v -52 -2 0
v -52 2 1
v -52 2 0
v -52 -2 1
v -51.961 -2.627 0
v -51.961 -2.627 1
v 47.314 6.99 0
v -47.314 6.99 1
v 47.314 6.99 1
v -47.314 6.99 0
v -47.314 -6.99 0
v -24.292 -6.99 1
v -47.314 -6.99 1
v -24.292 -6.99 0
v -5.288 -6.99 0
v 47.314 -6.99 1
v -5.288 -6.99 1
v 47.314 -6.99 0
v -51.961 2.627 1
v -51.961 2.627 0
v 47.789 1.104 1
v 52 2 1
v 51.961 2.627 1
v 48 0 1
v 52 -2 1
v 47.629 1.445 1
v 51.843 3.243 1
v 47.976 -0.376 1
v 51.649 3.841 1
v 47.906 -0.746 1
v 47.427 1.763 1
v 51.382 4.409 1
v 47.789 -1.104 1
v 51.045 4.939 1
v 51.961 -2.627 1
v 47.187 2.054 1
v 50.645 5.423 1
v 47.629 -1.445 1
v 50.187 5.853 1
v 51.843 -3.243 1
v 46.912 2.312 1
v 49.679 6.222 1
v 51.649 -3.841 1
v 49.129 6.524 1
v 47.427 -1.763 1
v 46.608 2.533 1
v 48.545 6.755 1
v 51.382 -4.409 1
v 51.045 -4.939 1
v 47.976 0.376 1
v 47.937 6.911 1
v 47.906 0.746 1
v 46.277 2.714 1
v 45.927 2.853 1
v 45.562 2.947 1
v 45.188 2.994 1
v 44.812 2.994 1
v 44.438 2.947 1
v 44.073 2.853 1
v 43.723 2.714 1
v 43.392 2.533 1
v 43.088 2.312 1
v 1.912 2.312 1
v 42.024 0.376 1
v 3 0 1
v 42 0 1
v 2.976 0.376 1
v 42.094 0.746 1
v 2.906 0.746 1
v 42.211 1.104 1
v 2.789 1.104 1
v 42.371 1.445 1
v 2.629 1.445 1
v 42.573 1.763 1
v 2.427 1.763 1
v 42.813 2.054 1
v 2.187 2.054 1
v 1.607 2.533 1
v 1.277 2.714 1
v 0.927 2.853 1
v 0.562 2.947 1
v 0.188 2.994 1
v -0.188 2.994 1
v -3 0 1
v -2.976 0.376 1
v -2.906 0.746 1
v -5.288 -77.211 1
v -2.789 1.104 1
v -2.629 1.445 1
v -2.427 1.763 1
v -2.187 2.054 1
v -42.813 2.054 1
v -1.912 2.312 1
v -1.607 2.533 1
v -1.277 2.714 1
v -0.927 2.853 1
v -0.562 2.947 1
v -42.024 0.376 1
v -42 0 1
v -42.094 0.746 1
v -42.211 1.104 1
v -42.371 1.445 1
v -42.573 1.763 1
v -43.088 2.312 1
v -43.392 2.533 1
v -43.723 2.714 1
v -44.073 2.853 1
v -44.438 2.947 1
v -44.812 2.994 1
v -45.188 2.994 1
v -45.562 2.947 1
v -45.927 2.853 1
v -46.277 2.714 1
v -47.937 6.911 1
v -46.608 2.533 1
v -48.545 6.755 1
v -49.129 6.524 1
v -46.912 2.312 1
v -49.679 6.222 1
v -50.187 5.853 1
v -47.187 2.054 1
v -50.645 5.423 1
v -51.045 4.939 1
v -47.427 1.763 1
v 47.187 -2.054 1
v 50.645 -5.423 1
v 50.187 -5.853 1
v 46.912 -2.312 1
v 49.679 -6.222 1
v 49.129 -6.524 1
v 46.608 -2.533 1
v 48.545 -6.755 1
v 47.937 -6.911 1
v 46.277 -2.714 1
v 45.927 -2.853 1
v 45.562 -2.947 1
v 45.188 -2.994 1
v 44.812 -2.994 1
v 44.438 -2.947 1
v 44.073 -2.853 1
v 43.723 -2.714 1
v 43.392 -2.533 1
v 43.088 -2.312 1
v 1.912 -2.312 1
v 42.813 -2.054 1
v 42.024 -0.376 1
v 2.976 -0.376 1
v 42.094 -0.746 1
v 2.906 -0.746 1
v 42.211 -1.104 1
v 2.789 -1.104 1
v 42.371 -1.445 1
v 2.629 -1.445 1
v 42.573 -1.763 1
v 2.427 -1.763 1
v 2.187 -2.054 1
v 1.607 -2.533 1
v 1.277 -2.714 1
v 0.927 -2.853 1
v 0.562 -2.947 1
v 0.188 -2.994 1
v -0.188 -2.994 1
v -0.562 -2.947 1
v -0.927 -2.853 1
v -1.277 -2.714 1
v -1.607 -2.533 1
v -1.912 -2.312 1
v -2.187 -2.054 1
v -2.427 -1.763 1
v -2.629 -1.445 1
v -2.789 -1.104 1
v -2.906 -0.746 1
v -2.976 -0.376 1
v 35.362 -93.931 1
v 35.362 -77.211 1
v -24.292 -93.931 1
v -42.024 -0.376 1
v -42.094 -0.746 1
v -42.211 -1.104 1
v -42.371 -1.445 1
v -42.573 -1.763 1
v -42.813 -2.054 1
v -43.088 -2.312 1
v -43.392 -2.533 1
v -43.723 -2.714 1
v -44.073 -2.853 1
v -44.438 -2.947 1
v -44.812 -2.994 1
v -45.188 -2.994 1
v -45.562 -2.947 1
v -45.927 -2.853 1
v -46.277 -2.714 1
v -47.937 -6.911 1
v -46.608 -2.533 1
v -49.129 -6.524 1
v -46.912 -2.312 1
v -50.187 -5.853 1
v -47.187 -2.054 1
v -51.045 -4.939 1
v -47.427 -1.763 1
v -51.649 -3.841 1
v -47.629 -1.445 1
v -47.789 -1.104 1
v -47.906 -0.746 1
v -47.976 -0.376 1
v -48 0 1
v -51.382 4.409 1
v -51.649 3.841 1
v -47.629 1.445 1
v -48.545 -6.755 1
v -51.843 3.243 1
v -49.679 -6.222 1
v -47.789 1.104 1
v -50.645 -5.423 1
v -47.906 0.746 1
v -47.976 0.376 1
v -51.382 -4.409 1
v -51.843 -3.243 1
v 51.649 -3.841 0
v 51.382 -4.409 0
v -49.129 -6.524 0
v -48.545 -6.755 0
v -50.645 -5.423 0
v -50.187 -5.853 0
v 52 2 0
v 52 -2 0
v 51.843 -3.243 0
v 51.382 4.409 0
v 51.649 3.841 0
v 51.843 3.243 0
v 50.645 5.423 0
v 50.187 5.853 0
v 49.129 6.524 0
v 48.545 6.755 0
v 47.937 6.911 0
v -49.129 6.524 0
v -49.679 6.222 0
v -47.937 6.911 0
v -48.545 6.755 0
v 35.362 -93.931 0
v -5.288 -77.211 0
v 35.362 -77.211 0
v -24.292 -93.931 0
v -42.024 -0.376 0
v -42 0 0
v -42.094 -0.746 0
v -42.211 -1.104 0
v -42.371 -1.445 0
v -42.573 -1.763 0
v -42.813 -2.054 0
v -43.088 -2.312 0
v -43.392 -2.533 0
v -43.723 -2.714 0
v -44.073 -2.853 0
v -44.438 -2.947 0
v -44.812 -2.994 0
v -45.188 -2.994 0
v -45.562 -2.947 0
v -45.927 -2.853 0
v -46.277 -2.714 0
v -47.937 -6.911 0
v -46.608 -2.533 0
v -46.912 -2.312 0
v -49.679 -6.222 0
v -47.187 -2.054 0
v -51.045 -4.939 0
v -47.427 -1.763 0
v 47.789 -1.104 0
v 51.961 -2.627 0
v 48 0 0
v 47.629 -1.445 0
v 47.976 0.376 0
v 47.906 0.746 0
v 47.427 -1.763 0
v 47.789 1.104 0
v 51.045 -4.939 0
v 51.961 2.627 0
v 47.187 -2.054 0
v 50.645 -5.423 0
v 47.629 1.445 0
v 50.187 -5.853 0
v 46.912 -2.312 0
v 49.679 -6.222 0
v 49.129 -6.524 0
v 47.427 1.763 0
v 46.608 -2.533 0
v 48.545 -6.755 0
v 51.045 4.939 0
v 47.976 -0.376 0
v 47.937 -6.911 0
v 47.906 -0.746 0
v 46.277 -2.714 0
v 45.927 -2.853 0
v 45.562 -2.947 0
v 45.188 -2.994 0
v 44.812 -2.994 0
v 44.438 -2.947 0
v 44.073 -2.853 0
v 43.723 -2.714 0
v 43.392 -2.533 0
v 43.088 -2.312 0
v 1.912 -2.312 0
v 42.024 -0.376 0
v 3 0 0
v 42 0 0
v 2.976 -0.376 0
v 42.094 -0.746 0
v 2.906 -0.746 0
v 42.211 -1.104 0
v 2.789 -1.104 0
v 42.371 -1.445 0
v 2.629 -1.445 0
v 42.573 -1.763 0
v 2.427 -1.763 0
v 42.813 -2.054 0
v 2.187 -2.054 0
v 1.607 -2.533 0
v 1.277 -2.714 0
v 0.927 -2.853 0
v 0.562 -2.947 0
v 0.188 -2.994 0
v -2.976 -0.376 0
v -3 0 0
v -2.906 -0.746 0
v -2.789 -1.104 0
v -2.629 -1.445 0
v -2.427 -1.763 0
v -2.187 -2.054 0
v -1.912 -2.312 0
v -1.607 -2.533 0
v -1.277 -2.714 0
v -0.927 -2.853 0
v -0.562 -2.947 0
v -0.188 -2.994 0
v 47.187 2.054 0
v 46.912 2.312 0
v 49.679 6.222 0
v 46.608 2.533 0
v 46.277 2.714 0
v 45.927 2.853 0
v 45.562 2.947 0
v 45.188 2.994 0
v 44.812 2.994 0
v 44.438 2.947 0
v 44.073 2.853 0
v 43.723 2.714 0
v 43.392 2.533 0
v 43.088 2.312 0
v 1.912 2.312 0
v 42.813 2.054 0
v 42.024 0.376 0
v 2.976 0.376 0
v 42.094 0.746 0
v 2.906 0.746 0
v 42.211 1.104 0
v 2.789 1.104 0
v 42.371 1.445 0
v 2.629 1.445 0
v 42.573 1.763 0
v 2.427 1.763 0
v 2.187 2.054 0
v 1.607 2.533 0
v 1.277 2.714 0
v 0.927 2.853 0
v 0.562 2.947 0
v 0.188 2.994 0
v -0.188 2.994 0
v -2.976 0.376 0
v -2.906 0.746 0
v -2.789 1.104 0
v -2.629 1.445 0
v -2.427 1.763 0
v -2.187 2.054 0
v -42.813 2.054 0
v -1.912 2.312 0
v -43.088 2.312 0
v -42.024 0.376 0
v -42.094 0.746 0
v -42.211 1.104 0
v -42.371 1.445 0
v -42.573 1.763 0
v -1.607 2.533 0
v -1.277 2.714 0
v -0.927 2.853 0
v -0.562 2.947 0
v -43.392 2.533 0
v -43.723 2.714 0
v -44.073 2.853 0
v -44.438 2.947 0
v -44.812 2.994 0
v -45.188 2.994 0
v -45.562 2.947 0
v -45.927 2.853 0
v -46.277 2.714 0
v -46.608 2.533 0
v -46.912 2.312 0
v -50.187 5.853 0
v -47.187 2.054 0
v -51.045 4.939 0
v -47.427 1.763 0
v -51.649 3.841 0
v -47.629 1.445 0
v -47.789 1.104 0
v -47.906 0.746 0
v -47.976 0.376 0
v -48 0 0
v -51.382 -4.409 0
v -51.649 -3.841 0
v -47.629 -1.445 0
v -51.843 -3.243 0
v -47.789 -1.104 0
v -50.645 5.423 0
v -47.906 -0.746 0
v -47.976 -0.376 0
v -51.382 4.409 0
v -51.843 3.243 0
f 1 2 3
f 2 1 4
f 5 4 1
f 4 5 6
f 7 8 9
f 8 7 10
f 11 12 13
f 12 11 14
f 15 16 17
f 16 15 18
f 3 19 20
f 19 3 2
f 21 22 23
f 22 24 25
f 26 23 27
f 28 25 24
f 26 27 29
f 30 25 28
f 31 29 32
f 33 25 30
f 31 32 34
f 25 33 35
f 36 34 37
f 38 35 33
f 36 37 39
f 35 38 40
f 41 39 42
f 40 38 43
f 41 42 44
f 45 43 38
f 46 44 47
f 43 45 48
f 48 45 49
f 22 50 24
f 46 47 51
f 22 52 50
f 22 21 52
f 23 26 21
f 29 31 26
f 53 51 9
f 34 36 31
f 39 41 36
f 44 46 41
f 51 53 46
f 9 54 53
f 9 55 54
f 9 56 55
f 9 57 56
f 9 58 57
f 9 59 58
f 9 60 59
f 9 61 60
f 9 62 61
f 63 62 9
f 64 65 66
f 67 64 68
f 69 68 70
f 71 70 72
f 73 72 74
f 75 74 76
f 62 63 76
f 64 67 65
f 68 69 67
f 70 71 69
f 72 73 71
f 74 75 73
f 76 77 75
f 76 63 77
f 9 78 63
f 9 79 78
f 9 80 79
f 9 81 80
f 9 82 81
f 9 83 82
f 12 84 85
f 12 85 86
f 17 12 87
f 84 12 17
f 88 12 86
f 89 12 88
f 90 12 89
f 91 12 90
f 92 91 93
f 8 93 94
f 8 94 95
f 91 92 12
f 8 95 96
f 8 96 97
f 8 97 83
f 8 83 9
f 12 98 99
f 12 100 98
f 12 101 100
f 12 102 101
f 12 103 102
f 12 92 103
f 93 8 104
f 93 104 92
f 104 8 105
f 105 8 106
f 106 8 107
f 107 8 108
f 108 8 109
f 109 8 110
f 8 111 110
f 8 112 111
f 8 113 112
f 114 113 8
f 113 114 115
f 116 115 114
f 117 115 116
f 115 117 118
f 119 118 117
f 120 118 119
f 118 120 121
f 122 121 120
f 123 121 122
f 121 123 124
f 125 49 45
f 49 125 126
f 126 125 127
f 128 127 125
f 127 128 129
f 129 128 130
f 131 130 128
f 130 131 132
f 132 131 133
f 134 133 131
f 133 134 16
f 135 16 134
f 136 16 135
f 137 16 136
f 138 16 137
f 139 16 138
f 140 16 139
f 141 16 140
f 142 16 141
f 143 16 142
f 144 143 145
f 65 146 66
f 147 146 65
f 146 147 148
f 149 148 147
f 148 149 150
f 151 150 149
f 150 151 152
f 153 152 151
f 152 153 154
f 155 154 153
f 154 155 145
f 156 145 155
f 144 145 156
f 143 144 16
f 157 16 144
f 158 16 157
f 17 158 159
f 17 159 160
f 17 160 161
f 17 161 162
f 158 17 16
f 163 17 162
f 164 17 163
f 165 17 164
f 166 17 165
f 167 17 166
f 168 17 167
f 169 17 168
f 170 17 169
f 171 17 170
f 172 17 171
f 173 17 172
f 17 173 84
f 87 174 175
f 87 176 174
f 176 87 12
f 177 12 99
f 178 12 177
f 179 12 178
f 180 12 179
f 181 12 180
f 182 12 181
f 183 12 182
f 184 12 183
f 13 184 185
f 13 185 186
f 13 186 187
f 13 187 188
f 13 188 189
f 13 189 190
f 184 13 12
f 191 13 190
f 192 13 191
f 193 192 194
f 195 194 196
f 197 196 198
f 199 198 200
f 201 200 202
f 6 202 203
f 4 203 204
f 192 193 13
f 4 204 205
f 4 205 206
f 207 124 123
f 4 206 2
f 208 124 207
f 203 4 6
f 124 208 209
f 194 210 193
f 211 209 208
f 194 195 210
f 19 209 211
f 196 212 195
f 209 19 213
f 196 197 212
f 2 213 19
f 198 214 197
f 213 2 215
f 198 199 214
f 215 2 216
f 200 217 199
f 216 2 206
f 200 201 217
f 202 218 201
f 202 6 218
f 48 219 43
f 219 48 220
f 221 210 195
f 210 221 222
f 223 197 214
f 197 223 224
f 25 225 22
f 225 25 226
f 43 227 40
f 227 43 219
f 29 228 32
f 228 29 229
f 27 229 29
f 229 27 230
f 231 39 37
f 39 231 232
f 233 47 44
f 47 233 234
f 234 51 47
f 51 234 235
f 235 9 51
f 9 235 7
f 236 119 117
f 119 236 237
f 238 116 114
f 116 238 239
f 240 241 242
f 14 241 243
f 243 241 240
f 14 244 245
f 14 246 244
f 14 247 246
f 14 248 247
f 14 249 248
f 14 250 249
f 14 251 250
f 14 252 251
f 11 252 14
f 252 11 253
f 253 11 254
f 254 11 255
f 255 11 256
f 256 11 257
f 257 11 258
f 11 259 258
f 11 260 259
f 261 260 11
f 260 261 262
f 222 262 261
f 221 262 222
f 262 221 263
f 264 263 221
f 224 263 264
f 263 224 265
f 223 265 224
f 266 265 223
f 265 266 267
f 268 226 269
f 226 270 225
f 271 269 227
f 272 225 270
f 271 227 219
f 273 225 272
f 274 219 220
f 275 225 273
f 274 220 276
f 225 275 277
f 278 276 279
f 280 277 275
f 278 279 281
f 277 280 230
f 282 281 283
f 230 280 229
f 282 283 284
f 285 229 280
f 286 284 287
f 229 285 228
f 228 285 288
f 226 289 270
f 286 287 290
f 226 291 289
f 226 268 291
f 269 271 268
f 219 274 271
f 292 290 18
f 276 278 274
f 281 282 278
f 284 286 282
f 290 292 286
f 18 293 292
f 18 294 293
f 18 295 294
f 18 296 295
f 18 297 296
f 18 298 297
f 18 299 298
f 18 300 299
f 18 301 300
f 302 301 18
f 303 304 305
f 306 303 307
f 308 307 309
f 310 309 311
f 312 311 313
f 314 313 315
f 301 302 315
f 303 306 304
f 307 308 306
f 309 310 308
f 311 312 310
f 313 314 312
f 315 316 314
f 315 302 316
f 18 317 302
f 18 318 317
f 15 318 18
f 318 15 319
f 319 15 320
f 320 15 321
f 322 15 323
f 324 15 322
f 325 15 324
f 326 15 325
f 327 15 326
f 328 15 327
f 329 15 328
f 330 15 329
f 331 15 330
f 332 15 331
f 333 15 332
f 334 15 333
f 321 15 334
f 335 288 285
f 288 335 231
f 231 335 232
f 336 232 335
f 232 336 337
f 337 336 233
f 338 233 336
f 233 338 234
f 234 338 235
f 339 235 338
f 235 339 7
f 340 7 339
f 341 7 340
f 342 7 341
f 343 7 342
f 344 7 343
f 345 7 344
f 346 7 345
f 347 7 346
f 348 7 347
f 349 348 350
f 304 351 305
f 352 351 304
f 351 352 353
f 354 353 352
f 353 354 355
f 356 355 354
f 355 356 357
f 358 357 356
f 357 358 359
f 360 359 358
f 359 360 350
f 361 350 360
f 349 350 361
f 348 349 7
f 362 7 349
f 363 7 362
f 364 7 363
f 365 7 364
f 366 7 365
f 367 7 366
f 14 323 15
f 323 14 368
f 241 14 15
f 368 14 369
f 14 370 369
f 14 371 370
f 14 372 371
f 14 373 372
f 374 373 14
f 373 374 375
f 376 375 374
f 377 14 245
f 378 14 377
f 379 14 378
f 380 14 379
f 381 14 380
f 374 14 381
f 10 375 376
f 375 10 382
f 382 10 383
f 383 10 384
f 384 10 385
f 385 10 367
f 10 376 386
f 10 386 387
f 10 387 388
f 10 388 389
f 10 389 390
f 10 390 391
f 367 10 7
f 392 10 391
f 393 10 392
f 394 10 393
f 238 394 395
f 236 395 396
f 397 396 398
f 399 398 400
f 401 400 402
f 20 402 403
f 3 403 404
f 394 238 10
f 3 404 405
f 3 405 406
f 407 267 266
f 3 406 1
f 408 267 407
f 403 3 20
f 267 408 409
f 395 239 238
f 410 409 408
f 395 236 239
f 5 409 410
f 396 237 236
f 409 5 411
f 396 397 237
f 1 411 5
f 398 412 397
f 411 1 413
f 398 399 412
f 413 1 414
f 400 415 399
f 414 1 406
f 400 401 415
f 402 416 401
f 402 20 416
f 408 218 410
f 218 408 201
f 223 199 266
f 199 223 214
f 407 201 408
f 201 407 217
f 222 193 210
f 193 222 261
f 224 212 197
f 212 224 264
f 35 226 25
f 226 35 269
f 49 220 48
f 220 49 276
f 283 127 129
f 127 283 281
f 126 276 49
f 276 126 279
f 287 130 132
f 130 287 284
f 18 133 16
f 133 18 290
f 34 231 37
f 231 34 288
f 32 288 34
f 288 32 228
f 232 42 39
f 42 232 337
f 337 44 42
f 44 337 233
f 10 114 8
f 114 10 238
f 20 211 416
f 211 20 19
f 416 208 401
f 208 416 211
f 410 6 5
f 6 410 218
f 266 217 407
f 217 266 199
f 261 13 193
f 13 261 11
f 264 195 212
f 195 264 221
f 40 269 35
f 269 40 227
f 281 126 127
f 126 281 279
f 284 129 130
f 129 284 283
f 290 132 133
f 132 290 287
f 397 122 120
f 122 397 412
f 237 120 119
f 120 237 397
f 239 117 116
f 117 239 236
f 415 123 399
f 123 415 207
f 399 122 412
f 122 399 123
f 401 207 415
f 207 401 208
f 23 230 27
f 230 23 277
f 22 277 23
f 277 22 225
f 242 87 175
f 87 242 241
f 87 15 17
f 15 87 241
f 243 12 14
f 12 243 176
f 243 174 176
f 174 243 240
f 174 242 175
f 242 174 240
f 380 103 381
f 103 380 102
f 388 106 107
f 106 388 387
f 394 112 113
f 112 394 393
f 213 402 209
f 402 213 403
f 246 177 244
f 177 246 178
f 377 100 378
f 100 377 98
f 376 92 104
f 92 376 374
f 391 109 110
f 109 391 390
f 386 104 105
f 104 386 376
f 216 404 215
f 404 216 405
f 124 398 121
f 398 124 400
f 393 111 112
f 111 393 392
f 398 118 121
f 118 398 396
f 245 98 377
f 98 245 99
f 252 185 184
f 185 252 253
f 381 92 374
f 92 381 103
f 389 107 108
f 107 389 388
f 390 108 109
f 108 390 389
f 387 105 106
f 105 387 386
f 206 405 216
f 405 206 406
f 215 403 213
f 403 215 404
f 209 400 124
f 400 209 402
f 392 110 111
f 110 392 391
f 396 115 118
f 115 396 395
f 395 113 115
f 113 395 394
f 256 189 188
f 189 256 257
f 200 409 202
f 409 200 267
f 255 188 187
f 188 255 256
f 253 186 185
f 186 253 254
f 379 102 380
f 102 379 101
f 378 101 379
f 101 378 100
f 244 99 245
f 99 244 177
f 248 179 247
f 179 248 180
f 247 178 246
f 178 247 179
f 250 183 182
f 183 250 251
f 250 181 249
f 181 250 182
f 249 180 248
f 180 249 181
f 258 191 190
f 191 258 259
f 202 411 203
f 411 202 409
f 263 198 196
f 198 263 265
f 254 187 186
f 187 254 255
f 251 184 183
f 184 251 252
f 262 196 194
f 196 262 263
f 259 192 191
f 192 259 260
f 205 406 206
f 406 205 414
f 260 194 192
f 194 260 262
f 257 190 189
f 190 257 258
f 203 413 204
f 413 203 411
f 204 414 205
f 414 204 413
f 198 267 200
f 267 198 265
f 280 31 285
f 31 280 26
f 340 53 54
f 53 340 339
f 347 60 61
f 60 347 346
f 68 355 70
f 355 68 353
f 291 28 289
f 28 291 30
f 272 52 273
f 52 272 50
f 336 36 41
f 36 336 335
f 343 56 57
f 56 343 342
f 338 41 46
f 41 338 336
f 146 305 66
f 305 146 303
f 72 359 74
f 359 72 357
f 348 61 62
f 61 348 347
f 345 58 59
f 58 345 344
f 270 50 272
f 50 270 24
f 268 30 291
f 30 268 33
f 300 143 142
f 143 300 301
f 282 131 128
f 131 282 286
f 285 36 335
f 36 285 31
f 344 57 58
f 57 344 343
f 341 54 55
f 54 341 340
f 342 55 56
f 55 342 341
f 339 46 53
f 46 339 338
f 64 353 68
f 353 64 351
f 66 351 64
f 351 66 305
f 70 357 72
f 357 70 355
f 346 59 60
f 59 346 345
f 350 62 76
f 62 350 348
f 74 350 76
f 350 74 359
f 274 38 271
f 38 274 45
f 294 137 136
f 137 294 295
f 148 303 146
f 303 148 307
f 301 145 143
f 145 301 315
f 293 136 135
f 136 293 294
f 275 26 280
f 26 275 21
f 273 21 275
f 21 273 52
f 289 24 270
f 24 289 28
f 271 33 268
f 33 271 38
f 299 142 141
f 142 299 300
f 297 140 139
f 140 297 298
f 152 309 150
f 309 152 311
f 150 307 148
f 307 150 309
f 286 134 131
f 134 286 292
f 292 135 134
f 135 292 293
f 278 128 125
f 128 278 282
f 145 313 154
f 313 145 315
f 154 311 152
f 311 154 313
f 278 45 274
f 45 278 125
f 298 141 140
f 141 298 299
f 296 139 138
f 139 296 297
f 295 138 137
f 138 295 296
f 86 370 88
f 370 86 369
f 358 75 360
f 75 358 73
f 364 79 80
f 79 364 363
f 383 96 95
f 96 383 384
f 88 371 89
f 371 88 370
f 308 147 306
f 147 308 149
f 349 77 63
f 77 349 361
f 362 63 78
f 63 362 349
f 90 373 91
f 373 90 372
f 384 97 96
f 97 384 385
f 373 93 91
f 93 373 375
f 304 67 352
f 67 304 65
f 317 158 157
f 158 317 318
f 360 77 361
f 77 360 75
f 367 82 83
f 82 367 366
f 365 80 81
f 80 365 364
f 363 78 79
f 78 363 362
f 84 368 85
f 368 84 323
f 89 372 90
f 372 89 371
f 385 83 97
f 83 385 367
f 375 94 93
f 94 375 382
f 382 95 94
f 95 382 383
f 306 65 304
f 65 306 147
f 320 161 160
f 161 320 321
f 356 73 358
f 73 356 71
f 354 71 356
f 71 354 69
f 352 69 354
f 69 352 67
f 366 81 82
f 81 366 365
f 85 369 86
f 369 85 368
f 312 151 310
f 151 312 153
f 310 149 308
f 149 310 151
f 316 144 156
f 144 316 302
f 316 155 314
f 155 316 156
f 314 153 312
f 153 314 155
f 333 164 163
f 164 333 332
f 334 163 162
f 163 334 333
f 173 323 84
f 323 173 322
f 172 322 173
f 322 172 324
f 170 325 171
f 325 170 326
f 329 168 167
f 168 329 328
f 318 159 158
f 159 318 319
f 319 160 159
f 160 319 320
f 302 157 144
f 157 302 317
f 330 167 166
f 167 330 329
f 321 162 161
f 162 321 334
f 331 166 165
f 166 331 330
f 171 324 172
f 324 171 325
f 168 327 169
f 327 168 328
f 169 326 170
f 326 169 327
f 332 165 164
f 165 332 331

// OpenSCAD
$fn = 50;


difference() {
	union() {
		translate(v = [0, 0, 0]) {
			rotate(a = [0, 0, 0]) {
				hull() {
					translate(v = [-47.0000000000, 2.0000000000, 0]) {
						rotate(a = [0, 0, 0]) {
							translate(v = [0, 0, 0]) {
								rotate(a = [0, 0, 0]) {
									cylinder(h = 1, r = 5);
								}
							}
						}
					}
					translate(v = [47.0000000000, 2.0000000000, 0]) {
						rotate(a = [0, 0, 0]) {
							translate(v = [0, 0, 0]) {
								rotate(a = [0, 0, 0]) {
									cylinder(h = 1, r = 5);
								}
							}
						}
					}
					translate(v = [-47.0000000000, -2.0000000000, 0]) {
						rotate(a = [0, 0, 0]) {
							translate(v = [0, 0, 0]) {
								rotate(a = [0, 0, 0]) {
									cylinder(h = 1, r = 5);
								}
							}
						}
					}
					translate(v = [47.0000000000, -2.0000000000, 0]) {
						rotate(a = [0, 0, 0]) {
							translate(v = [0, 0, 0]) {
								rotate(a = [0, 0, 0]) {
									cylinder(h = 1, r = 5);
								}
							}
						}
					}
				}
			}
		}
		translate(v = [0, 0, 0]) {
			rotate(a = [0, 0, 0]) {
				linear_extrude(height = 1) {
					text(font = "DejaVu Sans Mono:style=Bold", halign = "center", size = 95.0000000000, text = "L", valign = "top");
				}
			}
		}
	}
	union() {
		translate(v = [-45.0000000000, 0.0000000000, -125.0000000000]) {
			rotate(a = [0, 0, 0]) {
				cylinder(h = 250, r = 3.0000000000);
			}
		}
		translate(v = [45.0000000000, 0.0000000000, -125.0000000000]) {
			rotate(a = [0, 0, 0]) {
				cylinder(h = 250, r = 3.0000000000);
			}
		}
		translate(v = [45.0000000000, 0.0000000000, -125.0000000000]) {
			rotate(a = [0, 0, 0]) {
				cylinder(h = 250, r = 3.0000000000);
			}
		}
		translate(v = [0, 0, -125.0000000000]) {
			rotate(a = [0, 0, 0]) {
				cylinder(h = 250, r = 3.0000000000);
			}
		}
	}
}
